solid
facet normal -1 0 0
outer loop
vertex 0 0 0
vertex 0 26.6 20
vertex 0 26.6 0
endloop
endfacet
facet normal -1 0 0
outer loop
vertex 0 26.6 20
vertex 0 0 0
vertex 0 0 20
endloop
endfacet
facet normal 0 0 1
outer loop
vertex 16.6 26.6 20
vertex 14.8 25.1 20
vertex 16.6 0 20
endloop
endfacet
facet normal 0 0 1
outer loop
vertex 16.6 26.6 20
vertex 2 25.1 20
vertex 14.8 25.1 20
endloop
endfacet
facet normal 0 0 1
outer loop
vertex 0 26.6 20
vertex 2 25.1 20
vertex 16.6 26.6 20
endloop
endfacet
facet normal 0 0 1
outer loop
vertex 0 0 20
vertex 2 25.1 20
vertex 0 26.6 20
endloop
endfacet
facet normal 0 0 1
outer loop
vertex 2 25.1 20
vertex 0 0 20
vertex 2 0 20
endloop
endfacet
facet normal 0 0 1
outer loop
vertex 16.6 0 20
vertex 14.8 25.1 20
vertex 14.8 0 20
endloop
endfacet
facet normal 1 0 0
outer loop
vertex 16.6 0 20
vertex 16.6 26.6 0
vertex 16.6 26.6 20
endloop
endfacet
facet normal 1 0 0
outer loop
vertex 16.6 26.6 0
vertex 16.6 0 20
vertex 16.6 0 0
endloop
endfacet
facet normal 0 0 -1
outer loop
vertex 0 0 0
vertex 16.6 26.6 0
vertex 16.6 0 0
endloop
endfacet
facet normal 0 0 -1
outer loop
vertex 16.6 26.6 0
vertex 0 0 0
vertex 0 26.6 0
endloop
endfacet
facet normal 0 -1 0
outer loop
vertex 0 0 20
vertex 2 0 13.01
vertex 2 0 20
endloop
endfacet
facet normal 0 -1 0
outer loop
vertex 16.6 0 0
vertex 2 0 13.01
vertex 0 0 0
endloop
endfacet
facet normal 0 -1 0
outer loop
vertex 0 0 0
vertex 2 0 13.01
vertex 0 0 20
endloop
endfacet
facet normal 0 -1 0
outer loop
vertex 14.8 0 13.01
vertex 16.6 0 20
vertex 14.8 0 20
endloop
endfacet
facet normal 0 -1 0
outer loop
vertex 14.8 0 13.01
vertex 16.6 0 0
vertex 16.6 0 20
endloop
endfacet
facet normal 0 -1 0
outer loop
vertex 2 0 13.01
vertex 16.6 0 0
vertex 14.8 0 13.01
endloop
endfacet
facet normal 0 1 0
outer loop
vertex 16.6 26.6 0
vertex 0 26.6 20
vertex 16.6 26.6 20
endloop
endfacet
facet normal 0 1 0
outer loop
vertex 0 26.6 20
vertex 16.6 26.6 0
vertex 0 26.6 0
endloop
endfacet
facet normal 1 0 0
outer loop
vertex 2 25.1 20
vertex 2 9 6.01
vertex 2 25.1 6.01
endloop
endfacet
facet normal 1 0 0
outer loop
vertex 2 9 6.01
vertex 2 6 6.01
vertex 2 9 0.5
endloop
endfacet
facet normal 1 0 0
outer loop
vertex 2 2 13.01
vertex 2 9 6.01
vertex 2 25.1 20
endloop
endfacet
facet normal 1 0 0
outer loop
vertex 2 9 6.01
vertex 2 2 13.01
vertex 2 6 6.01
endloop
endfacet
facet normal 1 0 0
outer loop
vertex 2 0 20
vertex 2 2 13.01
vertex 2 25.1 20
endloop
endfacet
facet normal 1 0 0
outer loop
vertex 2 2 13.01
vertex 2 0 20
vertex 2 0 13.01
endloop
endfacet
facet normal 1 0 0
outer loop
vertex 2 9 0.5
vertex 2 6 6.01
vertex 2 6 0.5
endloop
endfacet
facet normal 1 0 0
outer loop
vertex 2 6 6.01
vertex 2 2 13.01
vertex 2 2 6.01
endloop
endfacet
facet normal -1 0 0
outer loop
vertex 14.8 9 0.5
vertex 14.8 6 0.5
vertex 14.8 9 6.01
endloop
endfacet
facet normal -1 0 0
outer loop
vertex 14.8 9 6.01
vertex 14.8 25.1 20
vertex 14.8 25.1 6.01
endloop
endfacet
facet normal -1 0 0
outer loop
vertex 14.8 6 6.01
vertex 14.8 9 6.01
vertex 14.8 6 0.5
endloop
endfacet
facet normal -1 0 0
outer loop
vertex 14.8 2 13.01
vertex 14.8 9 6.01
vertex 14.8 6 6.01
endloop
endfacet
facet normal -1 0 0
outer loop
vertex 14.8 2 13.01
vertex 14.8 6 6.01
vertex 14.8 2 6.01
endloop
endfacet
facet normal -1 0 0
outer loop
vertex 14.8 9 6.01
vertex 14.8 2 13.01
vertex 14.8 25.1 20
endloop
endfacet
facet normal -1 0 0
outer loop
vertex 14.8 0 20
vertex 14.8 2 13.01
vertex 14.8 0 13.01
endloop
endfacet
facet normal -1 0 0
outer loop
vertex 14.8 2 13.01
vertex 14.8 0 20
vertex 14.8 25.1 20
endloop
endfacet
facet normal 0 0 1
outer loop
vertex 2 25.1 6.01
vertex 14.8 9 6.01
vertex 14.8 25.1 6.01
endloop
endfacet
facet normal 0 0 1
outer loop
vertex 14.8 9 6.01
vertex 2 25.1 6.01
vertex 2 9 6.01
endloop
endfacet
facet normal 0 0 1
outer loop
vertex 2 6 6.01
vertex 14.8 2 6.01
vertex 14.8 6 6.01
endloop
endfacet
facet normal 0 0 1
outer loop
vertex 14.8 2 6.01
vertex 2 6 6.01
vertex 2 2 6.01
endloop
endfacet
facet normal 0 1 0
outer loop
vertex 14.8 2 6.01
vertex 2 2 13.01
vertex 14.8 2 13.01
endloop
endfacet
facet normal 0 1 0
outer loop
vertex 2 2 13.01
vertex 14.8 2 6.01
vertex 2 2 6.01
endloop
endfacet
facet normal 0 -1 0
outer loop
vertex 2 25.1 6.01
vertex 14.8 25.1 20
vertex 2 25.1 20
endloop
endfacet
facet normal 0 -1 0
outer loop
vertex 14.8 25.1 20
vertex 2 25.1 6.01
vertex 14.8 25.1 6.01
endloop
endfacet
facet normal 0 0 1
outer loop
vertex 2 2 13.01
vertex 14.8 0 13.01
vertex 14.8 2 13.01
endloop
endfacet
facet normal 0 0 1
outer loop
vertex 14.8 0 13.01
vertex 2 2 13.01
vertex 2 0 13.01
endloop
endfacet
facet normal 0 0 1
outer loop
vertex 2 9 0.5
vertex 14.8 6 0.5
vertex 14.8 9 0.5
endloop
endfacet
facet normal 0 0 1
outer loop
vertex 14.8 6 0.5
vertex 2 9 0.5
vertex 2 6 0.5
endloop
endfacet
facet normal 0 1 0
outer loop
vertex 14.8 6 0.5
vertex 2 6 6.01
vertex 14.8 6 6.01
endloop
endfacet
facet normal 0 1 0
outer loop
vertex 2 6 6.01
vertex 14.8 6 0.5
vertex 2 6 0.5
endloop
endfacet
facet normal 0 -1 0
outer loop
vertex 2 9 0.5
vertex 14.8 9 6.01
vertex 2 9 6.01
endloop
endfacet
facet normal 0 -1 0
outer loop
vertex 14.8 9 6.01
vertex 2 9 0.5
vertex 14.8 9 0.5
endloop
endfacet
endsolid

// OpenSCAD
// holder for SG92R servo

module vertical_servo() {
    difference() {
        cube([16.6,26.6,20]);
        translate([2,2,6.01])
        cube([12.8,23.1,14]);
        translate([2,-0.01,13.01])
        cube([12.8,22.8,14]);
        translate([2,6,0.5])
        cube([12.8,3.0,30]);
    }
}


vertical_servo();
